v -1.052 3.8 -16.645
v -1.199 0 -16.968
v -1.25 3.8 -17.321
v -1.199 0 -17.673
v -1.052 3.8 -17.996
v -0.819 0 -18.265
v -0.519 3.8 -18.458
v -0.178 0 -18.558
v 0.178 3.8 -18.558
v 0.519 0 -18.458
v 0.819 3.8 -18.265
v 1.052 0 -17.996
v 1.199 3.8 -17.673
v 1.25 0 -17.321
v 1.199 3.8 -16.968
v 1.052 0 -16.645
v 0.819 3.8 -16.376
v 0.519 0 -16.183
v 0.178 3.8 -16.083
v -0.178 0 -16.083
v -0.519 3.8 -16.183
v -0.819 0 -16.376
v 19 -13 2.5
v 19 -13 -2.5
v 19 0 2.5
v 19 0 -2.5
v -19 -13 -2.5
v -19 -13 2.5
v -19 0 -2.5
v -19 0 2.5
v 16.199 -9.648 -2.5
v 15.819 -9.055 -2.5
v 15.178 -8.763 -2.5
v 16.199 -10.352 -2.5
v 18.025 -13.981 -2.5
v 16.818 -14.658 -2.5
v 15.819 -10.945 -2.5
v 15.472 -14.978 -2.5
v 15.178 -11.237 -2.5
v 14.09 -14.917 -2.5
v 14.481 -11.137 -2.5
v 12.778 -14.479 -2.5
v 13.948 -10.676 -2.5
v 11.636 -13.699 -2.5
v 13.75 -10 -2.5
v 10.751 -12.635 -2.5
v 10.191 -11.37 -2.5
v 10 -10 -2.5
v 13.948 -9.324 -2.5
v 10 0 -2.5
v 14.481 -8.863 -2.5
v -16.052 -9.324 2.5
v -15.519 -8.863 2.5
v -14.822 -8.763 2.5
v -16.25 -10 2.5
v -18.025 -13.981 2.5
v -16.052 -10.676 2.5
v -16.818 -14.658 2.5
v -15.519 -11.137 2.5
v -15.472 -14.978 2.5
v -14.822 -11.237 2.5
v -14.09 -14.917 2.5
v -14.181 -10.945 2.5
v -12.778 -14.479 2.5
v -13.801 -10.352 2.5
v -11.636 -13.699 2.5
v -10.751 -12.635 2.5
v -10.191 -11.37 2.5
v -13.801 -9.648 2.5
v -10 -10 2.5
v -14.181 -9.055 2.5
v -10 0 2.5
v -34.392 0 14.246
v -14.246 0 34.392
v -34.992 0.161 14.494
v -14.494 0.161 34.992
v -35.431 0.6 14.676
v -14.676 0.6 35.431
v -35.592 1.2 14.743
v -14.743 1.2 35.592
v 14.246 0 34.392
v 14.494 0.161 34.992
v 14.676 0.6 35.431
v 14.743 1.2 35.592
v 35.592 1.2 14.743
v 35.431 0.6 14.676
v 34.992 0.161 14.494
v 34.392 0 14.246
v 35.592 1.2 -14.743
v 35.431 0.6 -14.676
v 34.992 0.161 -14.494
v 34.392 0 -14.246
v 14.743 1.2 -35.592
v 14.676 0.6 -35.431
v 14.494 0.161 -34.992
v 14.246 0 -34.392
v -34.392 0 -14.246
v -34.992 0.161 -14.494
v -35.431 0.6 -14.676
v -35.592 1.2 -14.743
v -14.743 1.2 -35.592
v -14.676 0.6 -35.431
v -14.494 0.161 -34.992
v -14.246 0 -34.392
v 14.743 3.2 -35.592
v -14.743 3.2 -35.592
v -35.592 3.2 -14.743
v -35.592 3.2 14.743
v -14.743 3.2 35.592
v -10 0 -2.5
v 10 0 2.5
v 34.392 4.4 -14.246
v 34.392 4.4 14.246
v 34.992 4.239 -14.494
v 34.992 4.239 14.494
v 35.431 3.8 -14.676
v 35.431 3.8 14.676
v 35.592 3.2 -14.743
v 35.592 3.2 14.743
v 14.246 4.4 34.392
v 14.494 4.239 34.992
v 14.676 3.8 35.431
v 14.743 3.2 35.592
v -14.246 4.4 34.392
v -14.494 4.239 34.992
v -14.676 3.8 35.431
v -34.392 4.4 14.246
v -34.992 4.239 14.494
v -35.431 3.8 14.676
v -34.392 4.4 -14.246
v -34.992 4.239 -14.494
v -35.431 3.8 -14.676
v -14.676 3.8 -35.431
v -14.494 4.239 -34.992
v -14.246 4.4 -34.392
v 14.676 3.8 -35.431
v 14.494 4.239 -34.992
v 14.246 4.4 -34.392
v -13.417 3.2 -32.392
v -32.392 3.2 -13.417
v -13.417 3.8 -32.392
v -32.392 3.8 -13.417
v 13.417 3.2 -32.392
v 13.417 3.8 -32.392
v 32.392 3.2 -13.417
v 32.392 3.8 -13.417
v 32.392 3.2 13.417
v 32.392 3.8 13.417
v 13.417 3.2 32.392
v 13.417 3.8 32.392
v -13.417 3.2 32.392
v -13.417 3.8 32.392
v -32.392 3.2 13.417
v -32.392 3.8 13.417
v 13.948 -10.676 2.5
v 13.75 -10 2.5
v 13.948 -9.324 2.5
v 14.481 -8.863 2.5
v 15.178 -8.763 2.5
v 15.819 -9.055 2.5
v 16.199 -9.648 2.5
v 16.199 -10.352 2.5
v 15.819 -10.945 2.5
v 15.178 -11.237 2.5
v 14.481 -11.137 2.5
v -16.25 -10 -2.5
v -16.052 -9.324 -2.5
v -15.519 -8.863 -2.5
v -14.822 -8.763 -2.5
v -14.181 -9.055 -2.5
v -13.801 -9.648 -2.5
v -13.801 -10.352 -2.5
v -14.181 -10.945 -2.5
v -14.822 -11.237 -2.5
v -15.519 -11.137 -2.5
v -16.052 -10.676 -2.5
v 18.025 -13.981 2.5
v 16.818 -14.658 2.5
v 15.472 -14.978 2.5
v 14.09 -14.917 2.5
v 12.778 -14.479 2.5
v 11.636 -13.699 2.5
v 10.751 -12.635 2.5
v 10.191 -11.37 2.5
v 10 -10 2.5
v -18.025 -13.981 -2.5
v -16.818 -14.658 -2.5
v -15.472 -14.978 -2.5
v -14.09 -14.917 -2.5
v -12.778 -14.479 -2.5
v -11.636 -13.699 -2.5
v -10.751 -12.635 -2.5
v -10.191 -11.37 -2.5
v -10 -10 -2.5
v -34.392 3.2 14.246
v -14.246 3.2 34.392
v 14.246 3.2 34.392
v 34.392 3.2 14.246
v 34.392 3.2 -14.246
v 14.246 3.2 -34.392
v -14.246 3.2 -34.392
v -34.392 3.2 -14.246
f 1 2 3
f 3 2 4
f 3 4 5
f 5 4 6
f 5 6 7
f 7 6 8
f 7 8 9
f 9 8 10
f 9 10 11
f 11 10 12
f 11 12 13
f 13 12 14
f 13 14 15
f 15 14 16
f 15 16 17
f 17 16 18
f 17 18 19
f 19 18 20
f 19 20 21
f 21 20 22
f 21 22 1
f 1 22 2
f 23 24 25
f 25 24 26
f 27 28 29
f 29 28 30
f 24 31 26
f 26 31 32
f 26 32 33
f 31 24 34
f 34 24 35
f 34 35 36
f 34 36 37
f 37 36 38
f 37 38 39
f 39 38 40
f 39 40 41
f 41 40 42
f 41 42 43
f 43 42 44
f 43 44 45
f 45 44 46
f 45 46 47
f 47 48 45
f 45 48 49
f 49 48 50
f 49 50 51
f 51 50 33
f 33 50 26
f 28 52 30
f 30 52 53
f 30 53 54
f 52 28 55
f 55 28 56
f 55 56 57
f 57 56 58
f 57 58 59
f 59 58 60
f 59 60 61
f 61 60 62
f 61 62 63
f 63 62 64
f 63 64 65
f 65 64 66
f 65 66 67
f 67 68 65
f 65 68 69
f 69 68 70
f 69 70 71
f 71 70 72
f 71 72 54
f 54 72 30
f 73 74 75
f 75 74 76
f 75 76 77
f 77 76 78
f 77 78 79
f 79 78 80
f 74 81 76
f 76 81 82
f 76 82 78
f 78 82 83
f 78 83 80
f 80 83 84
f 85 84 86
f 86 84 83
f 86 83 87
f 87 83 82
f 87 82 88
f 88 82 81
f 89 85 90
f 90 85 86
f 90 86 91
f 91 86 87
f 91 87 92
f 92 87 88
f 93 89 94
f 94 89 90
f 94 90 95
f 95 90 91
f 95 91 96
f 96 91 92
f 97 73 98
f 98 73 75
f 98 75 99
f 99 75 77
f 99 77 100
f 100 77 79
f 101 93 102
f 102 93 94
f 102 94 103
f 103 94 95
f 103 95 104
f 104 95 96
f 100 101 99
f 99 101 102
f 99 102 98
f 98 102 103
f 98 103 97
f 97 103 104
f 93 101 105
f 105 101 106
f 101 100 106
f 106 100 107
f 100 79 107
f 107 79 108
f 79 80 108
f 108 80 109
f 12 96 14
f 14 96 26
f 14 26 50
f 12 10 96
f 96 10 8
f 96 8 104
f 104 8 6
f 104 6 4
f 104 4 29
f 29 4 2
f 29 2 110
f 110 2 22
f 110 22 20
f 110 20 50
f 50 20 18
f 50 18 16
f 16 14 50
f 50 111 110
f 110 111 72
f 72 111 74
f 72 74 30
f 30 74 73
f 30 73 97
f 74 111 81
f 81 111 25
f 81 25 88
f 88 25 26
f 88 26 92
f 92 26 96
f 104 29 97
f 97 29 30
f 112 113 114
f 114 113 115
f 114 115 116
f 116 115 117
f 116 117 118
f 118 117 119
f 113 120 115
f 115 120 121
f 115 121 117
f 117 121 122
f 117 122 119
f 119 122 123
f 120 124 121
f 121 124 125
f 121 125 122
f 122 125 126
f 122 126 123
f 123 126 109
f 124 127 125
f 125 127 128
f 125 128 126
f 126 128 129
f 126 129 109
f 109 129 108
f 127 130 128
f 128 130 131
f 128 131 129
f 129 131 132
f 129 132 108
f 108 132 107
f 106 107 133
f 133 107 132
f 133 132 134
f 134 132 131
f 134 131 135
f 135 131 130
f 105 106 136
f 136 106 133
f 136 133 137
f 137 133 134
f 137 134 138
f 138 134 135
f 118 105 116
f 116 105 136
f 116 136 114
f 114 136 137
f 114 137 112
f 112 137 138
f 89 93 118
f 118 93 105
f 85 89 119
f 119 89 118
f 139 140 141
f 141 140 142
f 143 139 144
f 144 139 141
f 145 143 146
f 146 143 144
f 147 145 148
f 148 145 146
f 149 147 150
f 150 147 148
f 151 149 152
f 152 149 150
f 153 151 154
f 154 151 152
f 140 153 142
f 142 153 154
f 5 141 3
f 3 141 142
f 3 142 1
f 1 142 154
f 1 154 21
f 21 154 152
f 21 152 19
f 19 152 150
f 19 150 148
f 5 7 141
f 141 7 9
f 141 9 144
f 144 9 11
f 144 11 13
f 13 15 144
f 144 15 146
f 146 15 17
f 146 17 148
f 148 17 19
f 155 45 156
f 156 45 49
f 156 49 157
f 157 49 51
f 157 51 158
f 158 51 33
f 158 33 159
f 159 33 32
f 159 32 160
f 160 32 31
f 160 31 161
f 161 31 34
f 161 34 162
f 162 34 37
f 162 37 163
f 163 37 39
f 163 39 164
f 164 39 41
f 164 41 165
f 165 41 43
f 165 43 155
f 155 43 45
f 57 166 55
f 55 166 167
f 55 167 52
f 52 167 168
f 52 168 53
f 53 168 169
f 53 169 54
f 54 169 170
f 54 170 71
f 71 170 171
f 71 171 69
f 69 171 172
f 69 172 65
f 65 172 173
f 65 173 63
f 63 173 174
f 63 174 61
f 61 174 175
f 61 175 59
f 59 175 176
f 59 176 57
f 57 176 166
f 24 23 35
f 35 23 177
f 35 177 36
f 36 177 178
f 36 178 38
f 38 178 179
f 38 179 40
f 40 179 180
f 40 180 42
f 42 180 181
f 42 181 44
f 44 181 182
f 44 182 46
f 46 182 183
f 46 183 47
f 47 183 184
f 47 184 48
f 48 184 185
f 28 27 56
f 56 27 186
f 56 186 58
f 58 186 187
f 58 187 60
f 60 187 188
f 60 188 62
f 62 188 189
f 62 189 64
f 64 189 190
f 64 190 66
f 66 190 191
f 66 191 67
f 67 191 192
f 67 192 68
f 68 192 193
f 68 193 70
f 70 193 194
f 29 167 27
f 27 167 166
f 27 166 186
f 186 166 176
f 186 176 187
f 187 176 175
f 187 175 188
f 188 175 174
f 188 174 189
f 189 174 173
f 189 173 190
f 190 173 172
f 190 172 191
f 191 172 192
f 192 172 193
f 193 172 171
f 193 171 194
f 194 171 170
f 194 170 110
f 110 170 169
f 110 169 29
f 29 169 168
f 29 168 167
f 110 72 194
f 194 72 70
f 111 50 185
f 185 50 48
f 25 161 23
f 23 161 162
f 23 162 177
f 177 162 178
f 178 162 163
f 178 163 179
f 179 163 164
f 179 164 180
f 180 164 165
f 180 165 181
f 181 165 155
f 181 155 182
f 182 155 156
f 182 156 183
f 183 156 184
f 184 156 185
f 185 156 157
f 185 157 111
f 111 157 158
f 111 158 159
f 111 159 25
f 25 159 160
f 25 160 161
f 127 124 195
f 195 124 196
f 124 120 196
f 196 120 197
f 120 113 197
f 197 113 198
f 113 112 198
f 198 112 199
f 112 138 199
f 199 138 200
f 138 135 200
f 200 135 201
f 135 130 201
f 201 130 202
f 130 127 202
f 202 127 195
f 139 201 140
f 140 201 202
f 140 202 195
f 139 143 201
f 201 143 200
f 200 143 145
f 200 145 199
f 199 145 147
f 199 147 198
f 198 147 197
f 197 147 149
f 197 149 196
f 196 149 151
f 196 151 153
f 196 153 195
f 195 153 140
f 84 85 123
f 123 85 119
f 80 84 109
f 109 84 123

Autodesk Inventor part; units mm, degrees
ref_plane "YZ Plane" through (0, 0, 0) normal (1, 0, 0) x (0, 1, 0)
ref_plane "XZ Plane" through (0, 0, 0) normal (0, 1, 0) x (-1, 0, 0)
ref_plane "XY Plane" through (0, 0, 0) normal (0, 0, 1) x (1, 0, 0)
sketch "스케치3" plane through (0, 0, 0) normal (0, 1, 0) x (-1, 0, 0)
  line L0 (35.5919, -14.7426) -> (14.7426, -35.5919)
  line L1 (14.7426, -35.5919) -> (-14.7426, -35.5919)
  line L2 (-14.7426, -35.5919) -> (-35.5919, -14.7426)
  line L3 (-35.5919, -14.7426) -> (-35.5919, 14.7426)
  line L4 (-35.5919, 14.7426) -> (-14.7426, 35.5919)
  line L5 (-14.7426, 35.5919) -> (14.7426, 35.5919)
  line L6 (14.7426, 35.5919) -> (35.5919, 14.7426)
  line L7 (35.5919, 14.7426) -> (35.5919, -14.7426)
  line L8 (32.5919, -13.5) -> (13.5, -32.5919)
  line L9 (13.5, -32.5919) -> (-13.5, -32.5919)
  line L10 (-13.5, -32.5919) -> (-32.5919, -13.5)
  line L11 (-32.5919, -13.5) -> (-32.5919, 13.5)
  line L12 (-32.5919, 13.5) -> (-13.5, 32.5919)
  line L13 (-13.5, 32.5919) -> (13.5, 32.5919)
  line L14 (13.5, 32.5919) -> (32.5919, 13.5)
  line L15 (32.5919, 13.5) -> (32.5919, -13.5)
  point P0 (0, 0)
  point P1 (0, 0)
  point P2 (0, 0)
  point P3 (0, 0)
  dimension "d43" = 27
  dimension "d44" = 3
extrude "돌출2" add sketch "스케치3" along normal blind 4.4 contours L0 L1 L2 L3 L4 L5 L6 L7 | L8 L9 L10 L11 L12 L13 L14 L15
sketch "스케치4" plane through (0, 4.4, 0) normal (0, 1, 0) x (1, 0, 0)
  line L0 (13.5, -32.5919) -> (-13.5, -32.5919)
  line L1 (-13.5, -32.5919) -> (-32.5919, -13.5)
  line L2 (-32.5919, -13.5) -> (-32.5919, 13.5)
  line L3 (-32.5919, 13.5) -> (-13.5, 32.5919)
  line L4 (-13.5, 32.5919) -> (13.5, 32.5919)
  line L5 (13.5, 32.5919) -> (32.5919, 13.5)
  line L6 (32.5919, 13.5) -> (32.5919, -13.5)
  line L7 (32.5919, -13.5) -> (13.5, -32.5919)
  line L8 (-14.2456, 34.3919) -> (14.2456, 34.3919)
  line L9 (14.2456, 34.3919) -> (34.3919, 14.2456)
  line L10 (34.3919, 14.2456) -> (34.3919, -14.2456)
  line L11 (34.3919, -14.2456) -> (14.2456, -34.3919)
  line L12 (14.2456, -34.3919) -> (-14.2456, -34.3919)
  line L13 (-14.2456, -34.3919) -> (-34.3919, -14.2456)
  line L14 (-34.3919, -14.2456) -> (-34.3919, 14.2456)
  line L15 (-34.3919, 14.2456) -> (-14.2456, 34.3919)
  line L16 (-13.4172, 32.3919) -> (13.4172, 32.3919)
  line L17 (13.4172, 32.3919) -> (32.3919, 13.4172)
  line L18 (32.3919, 13.4172) -> (32.3919, -13.4172)
  line L19 (32.3919, -13.4172) -> (13.4172, -32.3919)
  line L20 (13.4172, -32.3919) -> (-13.4172, -32.3919)
  line L21 (-13.4172, -32.3919) -> (-32.3919, -13.4172)
  line L22 (-32.3919, -13.4172) -> (-32.3919, 13.4172)
  line L23 (-32.3919, 13.4172) -> (-13.4172, 32.3919)
  point P0 (0, 0)
  point P1 (0, 0)
  point P2 (0, 0)
  point P3 (0, 0)
  dimension "d7" = 27
  dimension "d42" = 1.8
  dimension "d45" = 0.2
extrude "돌출3" cut sketch "스케치4" against normal blind 1.2 contours L0 L1 L2 L3 L4 L5 L6 L7 | L8 L9 L10 L11 L12 L13 L14 L15 | L16 L17 L18 L19 L20 L21 L22 L23
sketch "스케치5" plane through (0, 0, 0) normal (0, -1, 0) x (1, 0, 0)
  line L0 (10, 2.5) -> (20, 2.5)
  line L1 (20, 2.5) -> (20, -2.5)
  line L2 (20, -2.5) -> (10, -2.5)
  line L3 (10, -2.5) -> (10, 2.5)
  line L4 (10, 2.5) -> (20, -2.5) construction
  line L5 (20, 2.5) -> (10, -2.5) construction
  line L6 (-20, 2.5) -> (-10, 2.5)
  line L7 (-10, 2.5) -> (-10, -2.5)
  line L8 (-10, -2.5) -> (-20, -2.5)
  line L9 (-20, -2.5) -> (-20, 2.5)
  line L10 (-20, 2.5) -> (-10, -2.5) construction
  line L11 (-10, 2.5) -> (-20, -2.5) construction
  point P0 (0, 0)
  point P1 (15, 0)
  point P2 (-15, 0)
  dimension "d11" = 10
  dimension "d12" = 5
  dimension "d13" = 10
  dimension "d16" = 30
extrude "돌출4" add sketch "스케치5" along normal blind 10
sketch "스케치6" plane through (-10, 0, -2.5) normal (0, 0, -1) x (-1, 0, 0)
  circle A0 centre (5, -10) radius 5
  circle A1 centre (-25, -10) radius 5
  line L0 (-20, -10) -> (-30, -10) projected
  line L1 (10, -10) -> (0, -10) projected
  point P0 (-10, 0)
  dimension "d23" = 10
  dimension "d24" = 10
extrude "돌출5" add sketch "스케치6" against normal blind 5
sketch "스케치7" plane through (-10, 0, -2.5) normal (0, 0, -1) x (-1, 0, 0)
  circle A0 centre (5, -10) radius 1.25
  line L0 (10, 0) -> (10, -10) projected
  line L1 (0, 0) -> (10, 0) projected
  line L2 (4.7788, 0) -> (0, 0)
  circle A1 centre (-25, -10) radius 1.25
  point P0 (-10, 0)
  dimension "d27" = 2.5
  dimension "d28" = 5
  dimension "d31" = 30
extrude "돌출6" cut sketch "스케치7" against normal blind 5
sketch "스케치8" plane through (0, 0, 0) normal (0, -1, 0) x (1, 0, 0)
  circle A0 centre (0, -17.3205) radius 1.25
  line L0 (-10, 2.5) -> (-10, -2.5) projected
  point P0 (0, 0)
  point P1 (-10, 0)
  dimension "d38" = 2.5
  dimension "d39" = 17.3205
sketch "스케치9" plane through (0, 3.2, 0) normal (0, 1, 0) x (1, 0, 0)
  line L0 (-13.4172, 32.3919) -> (13.4172, 32.3919)
  line L1 (13.4172, 32.3919) -> (32.3919, 13.4172)
  line L2 (32.3919, 13.4172) -> (32.3919, -13.4172)
  line L3 (32.3919, -13.4172) -> (13.4172, -32.3919)
  line L4 (13.4172, -32.3919) -> (-13.4172, -32.3919)
  line L5 (-13.4172, -32.3919) -> (-32.3919, -13.4172)
  line L6 (-32.3919, -13.4172) -> (-32.3919, 13.4172)
  line L7 (-32.3919, 13.4172) -> (-13.4172, 32.3919)
  line L8 (-14.2456, 34.3919) -> (14.2456, 34.3919) projected
  line L9 (-12.1745, 29.3919) -> (12.1745, 29.3919)
  line L10 (12.1745, 29.3919) -> (29.3919, 12.1745)
  line L11 (29.3919, 12.1745) -> (29.3919, -12.1745)
  line L12 (29.3919, -12.1745) -> (12.1745, -29.3919)
  line L13 (12.1745, -29.3919) -> (-12.1745, -29.3919)
  line L14 (-12.1745, -29.3919) -> (-29.3919, -12.1745)
  line L15 (-29.3919, -12.1745) -> (-29.3919, 12.1745)
  line L16 (-29.3919, 12.1745) -> (-12.1745, 29.3919)
  point P0 (0, 0)
  point P1 (0, 0)
  point P2 (0, 0)
  dimension "d46" = 2
  dimension "d47" = 3
extrude "돌출8" add sketch "스케치9" along normal blind 0.6 contours L0 L1 L2 L3 L4 L5 L6 L7 | L9 L10 L11 L12 L13 L14 L15 L16
fillet "모깎기1" radius 1.2 16 edges at (-35.5919, 4.4, 0) (-25.1673, 4.4, 25.1673) (0, 4.4, 35.5919) (25.1673, 4.4, 25.1673) (35.5919, 4.4, 0) (25.1673, 4.4, -25.1673) (0, 4.4, -35.5919) (-25.1673, 4.4, -25.1673) (25.1673, 0, 25.1673) (0, 0, 35.5919) (-25.1673, 0, 25.1673) (-35.5919, 0, 0) (-25.1673, 0, -25.1673) (0, 0, -35.5919) (25.1673, 0, -25.1673) (35.5919, 0, 0)
sketch "스케치10" plane through (0, 0, 0) normal (0, -1, 0) x (1, 0, 0)
  line L0 (-20, 2.5) -> (-10, 2.5) projected
  line L1 (-10, -2.5) -> (-20, -2.5) projected
  line L2 (-20, 2.5) -> (-19, 2.5)
  line L3 (-19, 2.5) -> (-19, -2.5)
  line L4 (-19, -2.5) -> (-20, -2.5)
  line L5 (-20, -2.5) -> (-20, 2.5)
  line L6 (20, -2.5) -> (10, -2.5) projected
  line L7 (10, 2.5) -> (20, 2.5) projected
  line L8 (20, -2.5) -> (19, -2.5)
  line L9 (19, -2.5) -> (19, 2.5)
  line L10 (19, 2.5) -> (20, 2.5)
  line L11 (20, 2.5) -> (20, -2.5)
  point P0 (0, 0)
  dimension "d54" = 1
  dimension "d55" = 1
extrude "돌출9" cut sketch "스케치10" along normal blind 15
extrude "돌출10" cut sketch "스케치8" against normal blind 5
equation "\"d55\" = d54"
properties part number "OV-PAM_top_2"
